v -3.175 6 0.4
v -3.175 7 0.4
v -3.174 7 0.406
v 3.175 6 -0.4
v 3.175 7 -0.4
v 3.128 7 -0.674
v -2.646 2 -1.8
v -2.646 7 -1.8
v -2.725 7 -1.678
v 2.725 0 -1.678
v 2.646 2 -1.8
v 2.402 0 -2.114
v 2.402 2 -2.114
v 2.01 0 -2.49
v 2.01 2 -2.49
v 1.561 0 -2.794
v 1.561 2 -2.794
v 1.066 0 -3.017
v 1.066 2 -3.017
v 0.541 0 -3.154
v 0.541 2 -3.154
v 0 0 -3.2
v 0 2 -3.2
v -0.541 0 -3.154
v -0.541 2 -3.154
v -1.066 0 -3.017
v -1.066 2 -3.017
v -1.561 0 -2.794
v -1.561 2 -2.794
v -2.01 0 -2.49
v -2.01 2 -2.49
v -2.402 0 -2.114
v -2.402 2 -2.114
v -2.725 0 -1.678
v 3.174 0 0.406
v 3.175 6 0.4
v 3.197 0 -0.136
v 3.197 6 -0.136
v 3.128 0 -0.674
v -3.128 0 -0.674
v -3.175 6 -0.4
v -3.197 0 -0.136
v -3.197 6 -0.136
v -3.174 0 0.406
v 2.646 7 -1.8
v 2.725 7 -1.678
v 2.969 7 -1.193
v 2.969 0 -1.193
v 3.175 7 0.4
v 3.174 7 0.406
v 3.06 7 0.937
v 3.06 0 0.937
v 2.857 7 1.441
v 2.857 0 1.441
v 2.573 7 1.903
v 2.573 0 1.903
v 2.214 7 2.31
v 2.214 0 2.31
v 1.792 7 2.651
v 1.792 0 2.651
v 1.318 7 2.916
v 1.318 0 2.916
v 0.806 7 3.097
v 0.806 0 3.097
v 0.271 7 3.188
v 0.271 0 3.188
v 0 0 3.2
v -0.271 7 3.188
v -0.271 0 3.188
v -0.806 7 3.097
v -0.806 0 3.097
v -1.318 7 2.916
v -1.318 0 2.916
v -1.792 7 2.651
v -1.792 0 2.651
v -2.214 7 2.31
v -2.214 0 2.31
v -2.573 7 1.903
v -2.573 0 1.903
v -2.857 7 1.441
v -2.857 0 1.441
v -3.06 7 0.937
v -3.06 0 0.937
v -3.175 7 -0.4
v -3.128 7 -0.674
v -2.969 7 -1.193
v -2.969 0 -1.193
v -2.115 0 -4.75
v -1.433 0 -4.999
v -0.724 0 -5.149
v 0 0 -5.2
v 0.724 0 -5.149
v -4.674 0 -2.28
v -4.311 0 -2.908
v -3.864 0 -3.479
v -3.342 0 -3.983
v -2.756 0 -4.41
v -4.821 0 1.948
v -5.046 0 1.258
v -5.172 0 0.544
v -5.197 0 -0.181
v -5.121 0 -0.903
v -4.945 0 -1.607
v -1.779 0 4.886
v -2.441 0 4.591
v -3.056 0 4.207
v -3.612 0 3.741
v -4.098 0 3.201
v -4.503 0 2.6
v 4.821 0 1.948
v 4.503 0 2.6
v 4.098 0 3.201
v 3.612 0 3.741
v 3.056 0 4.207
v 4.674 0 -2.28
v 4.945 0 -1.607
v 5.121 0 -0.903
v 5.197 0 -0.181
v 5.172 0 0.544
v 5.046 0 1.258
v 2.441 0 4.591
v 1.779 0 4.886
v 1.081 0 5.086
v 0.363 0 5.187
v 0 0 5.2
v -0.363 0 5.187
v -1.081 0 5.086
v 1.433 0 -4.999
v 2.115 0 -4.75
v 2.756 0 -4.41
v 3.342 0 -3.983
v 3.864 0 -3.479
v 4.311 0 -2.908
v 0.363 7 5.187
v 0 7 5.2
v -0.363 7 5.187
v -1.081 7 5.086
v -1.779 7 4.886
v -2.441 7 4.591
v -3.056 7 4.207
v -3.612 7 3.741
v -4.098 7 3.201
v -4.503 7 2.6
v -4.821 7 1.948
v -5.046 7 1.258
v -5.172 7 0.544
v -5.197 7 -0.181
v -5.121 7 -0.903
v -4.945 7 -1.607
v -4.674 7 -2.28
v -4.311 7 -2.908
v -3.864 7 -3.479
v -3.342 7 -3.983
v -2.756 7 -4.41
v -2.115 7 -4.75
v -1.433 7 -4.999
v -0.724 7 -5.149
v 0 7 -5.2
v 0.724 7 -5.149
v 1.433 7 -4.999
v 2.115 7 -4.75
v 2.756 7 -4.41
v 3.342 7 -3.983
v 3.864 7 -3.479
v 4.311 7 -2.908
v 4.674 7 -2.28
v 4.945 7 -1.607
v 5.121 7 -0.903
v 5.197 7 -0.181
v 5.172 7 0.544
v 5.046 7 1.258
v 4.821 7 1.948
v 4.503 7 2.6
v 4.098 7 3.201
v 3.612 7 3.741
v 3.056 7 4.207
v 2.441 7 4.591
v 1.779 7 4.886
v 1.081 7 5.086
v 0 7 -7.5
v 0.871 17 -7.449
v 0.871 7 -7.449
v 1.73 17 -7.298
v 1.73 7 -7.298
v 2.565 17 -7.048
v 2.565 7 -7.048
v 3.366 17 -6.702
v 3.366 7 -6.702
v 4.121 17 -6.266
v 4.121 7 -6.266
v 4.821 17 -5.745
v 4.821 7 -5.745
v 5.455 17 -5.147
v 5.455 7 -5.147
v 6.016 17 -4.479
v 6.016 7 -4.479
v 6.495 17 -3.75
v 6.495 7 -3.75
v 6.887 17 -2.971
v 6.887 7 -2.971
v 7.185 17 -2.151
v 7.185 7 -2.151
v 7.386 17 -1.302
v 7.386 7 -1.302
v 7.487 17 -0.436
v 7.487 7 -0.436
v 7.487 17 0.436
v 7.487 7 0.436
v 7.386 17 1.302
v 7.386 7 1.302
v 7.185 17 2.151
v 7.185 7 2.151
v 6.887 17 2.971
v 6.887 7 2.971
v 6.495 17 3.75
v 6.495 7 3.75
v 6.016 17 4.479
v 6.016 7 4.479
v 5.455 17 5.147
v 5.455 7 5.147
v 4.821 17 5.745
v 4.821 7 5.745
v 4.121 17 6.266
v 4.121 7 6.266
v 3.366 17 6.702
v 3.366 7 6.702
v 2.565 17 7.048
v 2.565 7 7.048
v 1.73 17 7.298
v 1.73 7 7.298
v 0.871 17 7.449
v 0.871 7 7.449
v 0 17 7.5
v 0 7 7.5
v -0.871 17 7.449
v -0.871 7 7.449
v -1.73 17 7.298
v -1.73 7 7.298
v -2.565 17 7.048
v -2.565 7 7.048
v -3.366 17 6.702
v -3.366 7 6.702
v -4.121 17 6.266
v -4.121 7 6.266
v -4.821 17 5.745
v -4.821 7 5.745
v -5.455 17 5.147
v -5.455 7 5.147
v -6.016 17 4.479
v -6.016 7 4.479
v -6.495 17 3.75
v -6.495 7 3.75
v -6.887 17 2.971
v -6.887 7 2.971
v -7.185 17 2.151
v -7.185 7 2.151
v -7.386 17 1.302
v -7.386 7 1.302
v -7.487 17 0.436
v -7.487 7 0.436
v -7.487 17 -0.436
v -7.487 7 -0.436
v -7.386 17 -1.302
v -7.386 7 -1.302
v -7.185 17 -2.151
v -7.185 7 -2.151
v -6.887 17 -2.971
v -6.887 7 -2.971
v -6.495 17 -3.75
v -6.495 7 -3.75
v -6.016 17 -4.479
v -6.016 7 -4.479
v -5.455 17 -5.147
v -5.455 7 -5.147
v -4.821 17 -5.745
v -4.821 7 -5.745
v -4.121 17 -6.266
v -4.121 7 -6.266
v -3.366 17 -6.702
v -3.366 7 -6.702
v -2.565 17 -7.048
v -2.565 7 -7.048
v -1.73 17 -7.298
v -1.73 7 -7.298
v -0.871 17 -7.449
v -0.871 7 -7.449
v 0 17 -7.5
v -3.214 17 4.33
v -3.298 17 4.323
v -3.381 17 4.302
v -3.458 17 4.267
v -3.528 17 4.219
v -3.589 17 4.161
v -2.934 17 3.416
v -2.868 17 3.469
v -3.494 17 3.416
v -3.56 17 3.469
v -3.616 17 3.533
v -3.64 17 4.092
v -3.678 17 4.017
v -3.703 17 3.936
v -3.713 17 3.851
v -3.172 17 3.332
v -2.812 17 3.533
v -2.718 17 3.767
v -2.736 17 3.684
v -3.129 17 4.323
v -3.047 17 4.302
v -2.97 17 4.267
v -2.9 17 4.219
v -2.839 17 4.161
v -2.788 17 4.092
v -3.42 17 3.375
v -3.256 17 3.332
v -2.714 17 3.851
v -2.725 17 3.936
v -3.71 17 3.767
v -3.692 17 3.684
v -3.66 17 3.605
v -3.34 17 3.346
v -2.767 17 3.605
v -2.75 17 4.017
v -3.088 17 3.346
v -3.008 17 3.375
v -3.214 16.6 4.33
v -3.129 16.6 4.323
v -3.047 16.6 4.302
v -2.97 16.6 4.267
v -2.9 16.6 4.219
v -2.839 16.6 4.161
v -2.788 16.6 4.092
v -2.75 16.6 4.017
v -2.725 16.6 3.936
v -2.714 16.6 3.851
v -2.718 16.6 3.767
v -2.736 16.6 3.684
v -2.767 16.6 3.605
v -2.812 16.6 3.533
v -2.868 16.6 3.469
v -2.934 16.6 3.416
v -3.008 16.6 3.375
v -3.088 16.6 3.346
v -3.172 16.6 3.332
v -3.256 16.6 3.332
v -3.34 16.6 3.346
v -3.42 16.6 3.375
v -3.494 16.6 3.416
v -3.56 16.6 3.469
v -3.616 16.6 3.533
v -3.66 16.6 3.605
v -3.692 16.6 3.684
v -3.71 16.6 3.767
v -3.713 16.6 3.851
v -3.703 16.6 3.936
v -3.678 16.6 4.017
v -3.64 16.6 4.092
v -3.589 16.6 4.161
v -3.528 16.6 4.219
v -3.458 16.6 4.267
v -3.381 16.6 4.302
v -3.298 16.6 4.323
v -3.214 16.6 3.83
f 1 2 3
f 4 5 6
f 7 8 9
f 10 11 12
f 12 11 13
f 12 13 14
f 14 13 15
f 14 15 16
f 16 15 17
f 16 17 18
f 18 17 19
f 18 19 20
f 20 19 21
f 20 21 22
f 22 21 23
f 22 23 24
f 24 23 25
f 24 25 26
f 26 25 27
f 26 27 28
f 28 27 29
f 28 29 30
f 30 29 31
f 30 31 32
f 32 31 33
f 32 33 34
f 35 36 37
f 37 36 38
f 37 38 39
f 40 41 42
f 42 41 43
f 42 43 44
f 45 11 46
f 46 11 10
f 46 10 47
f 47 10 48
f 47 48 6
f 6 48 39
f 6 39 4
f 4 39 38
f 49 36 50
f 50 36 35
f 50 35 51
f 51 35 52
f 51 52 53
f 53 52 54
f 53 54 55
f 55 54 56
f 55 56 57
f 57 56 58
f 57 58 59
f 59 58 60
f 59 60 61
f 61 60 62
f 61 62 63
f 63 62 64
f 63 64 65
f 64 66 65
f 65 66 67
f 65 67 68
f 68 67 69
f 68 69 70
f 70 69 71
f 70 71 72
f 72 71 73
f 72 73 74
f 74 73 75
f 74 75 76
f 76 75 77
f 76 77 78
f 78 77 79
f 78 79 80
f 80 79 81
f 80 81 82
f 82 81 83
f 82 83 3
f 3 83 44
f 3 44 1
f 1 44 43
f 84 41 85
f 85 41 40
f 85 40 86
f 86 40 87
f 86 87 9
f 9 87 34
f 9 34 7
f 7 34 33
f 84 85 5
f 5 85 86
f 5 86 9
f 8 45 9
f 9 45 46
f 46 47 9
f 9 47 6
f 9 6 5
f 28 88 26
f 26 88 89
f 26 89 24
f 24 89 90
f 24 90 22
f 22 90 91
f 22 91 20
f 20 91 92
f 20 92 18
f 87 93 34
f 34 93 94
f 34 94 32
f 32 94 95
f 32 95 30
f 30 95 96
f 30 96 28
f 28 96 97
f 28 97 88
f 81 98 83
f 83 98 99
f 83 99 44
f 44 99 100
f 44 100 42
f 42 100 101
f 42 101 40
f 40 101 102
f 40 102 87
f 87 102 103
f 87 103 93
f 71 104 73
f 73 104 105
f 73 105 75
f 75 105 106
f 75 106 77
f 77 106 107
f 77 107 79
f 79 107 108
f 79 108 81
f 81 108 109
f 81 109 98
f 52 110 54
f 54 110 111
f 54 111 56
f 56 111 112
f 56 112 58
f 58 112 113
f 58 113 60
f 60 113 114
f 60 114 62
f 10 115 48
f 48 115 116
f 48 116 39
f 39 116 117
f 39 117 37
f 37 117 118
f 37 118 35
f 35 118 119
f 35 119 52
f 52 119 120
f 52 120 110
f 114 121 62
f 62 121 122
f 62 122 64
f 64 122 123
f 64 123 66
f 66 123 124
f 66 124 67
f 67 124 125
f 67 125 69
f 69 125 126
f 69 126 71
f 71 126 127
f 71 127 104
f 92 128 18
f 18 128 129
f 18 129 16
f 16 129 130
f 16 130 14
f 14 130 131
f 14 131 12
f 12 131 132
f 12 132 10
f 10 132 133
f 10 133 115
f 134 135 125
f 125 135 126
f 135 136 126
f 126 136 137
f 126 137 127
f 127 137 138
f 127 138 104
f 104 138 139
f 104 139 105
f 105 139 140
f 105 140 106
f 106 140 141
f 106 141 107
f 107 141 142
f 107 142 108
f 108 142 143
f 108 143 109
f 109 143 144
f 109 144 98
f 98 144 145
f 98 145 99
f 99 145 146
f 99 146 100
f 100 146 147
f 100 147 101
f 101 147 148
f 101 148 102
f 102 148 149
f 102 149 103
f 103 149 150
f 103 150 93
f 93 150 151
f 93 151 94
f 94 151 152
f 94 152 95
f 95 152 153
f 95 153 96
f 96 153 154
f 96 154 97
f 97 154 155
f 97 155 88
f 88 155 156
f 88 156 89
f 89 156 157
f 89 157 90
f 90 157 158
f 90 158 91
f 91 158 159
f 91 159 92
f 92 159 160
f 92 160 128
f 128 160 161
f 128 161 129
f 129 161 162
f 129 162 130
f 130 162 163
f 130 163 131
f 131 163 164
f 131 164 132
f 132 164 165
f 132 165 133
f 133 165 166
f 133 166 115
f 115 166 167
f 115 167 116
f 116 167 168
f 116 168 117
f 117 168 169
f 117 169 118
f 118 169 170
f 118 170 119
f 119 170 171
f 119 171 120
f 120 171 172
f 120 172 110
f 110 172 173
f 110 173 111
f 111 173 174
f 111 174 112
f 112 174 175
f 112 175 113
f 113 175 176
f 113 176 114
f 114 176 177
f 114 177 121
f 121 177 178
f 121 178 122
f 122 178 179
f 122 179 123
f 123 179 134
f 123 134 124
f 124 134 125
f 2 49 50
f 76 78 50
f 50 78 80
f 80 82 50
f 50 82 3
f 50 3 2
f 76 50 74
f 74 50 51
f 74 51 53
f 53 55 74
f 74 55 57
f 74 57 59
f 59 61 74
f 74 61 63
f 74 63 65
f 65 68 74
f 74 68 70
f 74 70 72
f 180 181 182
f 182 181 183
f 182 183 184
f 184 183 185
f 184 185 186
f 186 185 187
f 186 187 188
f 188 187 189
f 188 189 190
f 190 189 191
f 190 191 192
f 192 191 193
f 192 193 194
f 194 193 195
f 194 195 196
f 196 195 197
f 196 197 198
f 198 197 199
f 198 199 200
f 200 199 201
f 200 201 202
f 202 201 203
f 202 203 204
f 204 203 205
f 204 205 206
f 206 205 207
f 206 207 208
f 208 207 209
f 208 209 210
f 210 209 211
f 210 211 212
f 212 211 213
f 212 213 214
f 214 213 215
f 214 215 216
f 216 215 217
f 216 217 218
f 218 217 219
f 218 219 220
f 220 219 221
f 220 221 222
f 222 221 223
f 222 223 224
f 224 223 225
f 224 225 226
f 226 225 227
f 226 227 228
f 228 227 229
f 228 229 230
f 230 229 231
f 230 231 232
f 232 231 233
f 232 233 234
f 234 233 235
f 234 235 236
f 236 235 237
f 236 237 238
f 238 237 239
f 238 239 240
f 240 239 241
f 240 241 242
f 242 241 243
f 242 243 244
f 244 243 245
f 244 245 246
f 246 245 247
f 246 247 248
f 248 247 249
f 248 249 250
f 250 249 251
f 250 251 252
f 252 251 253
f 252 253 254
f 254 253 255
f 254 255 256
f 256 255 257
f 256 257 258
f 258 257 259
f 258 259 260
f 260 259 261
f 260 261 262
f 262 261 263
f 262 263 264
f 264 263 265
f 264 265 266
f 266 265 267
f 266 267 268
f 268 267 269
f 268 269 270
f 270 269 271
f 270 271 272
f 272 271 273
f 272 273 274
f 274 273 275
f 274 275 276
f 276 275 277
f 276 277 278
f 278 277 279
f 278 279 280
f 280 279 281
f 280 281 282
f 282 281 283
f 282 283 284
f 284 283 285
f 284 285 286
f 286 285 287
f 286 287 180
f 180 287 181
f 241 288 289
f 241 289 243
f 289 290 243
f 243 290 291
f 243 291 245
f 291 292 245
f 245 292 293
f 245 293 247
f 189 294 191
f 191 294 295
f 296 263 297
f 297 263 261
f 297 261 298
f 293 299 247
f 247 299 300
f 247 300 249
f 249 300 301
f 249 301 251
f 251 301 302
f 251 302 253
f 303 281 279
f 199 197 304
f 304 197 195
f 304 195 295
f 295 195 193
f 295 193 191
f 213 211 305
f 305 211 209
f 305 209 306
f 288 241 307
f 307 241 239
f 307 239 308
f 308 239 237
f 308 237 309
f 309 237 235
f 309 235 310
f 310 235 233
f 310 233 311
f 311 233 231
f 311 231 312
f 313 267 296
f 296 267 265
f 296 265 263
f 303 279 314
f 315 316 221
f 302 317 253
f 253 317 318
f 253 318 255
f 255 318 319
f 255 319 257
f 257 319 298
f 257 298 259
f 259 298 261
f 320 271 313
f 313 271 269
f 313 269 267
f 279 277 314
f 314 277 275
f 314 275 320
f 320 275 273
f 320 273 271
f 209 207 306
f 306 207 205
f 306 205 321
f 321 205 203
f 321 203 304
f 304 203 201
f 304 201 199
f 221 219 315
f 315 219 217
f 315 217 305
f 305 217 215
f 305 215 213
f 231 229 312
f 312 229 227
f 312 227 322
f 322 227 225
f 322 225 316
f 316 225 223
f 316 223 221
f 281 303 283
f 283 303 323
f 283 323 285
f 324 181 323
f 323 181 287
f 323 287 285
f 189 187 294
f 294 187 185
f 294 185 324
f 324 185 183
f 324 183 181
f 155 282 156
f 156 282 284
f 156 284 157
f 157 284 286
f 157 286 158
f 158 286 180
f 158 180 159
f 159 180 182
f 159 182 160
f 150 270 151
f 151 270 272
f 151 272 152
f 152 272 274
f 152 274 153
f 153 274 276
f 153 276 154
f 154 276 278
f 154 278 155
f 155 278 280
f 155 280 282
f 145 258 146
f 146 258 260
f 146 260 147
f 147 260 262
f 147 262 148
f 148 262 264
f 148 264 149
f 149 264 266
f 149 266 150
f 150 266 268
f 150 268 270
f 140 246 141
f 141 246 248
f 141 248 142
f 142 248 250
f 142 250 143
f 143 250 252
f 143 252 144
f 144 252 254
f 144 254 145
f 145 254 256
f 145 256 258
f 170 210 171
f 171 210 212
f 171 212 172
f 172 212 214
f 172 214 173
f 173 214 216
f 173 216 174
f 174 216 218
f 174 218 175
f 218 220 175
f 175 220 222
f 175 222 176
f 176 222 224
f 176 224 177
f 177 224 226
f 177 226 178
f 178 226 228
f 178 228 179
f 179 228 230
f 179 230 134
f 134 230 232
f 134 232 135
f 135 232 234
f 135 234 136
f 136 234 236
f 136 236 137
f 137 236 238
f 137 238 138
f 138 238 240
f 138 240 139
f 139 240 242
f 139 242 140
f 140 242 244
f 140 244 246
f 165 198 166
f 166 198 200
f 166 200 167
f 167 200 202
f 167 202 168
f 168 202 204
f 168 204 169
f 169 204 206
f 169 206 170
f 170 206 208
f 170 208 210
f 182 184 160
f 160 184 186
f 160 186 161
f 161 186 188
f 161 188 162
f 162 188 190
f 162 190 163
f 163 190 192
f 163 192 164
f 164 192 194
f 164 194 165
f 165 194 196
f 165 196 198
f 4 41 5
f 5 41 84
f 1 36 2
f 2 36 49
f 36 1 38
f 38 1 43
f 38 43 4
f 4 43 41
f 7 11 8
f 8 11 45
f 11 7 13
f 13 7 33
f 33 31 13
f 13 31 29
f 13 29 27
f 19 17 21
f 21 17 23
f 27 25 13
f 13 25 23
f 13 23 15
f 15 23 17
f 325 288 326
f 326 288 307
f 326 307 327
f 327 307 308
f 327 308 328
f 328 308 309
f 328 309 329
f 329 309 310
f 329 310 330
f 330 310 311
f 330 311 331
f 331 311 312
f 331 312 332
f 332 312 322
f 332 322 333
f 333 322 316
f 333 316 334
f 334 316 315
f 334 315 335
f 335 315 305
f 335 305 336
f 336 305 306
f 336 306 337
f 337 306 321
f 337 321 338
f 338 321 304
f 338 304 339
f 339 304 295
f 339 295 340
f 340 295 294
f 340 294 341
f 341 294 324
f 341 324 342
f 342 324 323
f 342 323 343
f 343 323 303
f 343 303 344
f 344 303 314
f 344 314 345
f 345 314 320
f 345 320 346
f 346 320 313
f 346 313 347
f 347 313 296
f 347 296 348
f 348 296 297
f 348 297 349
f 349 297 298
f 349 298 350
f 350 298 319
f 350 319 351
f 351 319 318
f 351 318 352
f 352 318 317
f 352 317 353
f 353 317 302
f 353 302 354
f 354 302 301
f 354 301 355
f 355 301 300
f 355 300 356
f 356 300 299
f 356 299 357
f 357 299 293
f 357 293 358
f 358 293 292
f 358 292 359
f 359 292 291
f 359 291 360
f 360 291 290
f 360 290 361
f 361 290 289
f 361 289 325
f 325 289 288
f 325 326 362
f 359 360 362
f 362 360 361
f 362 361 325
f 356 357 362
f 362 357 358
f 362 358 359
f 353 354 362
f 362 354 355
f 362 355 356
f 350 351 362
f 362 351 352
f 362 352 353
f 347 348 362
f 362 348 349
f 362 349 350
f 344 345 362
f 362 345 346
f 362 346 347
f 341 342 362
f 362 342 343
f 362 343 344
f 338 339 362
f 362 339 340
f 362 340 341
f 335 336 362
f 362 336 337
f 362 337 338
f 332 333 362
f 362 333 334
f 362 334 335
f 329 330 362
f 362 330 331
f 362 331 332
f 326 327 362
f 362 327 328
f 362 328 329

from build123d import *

# Parameters (mm, degrees)
SKETCH1_R           = 5.2
SKETCH1_R_2         = 3.2
BOSS_EXTRUDE1_DEPTH = 7
SKETCH2_R           = 7.5
BOSS_EXTRUDE2_DEPTH = 10
BOSS_EXTRUDE3_START = 1
BOSS_EXTRUDE3_DEPTH = 1
BOSS_EXTRUDE4_START = 5
BOSS_EXTRUDE4_DEPTH = 5
SKETCH5_R           = 0.5
CUT_EXTRUDE1_DEPTH  = 0.4


with BuildPart() as part:
    # Sketch1 → Boss-Extrude1 (new body)
    with BuildSketch(Plane(origin=(0, 0, 0), x_dir=(1, 0, 0), z_dir=(0, 1, 0))):
        with Locations(Location((0, 0, 0), (0, 0, 270))):
            Circle(SKETCH1_R)
        with Locations(Location((0, 0, 0), (0, 0, 270))):
            Circle(SKETCH1_R_2, mode=Mode.SUBTRACT)
    extrude(amount=BOSS_EXTRUDE1_DEPTH)

    # Sketch2 → Boss-Extrude2 (add)
    with BuildSketch(Plane(origin=(0, 7, 0), x_dir=(1, 0, 0), z_dir=(0, 1, 0))):
        with Locations(Location((0, 0, 0), (0, 0, 270))):
            Circle(SKETCH2_R)
    extrude(amount=BOSS_EXTRUDE2_DEPTH)

    # Sketch3 → Boss-Extrude3 (add)
    with BuildSketch(Plane.XZ.offset(-7).offset(BOSS_EXTRUDE3_START)):
        with BuildLine():
            Line((3.174901573, 0.4), (-3.174901573, 0.4))
            ThreePointArc((-3.174901573, 0.4), (-3.19371923, 0.20039332), (-3.2, 0))
            ThreePointArc((-3.2, 0), (-3.19371923, -0.20039332), (-3.174901573, -0.4))
            Line((-3.174901573, -0.4), (3.174901573, -0.4))
            ThreePointArc((3.174901573, -0.4), (3.19371923, -0.20039332), (3.2, 0))
            ThreePointArc((3.2, 0), (3.19371923, 0.20039332), (3.174901573, 0.4))
        make_face()
    extrude(amount=-BOSS_EXTRUDE3_DEPTH)

    # Sketch4 → Boss-Extrude4 (add)
    with BuildSketch(Plane.XZ.offset(-7).offset(BOSS_EXTRUDE4_START)):
        with BuildLine():
            Line((2.645751311, -1.8), (-2.645751311, -1.8))
            ThreePointArc((-2.645751311, -1.8), (0, -3.2), (2.645751311, -1.8))
        make_face()
    extrude(amount=-BOSS_EXTRUDE4_DEPTH)

    # Sketch5 → Cut-Extrude1 (cut)
    with BuildSketch(Plane(origin=(0, 17, 0), x_dir=(1, 0, 0), z_dir=(0, 1, 0))):
        with Locations(Location((-3.213938048, -3.830222216, 0), (0, 0, 270))):
            Circle(SKETCH5_R)
    extrude(amount=-CUT_EXTRUDE1_DEPTH, mode=Mode.SUBTRACT)


solid = part.part
